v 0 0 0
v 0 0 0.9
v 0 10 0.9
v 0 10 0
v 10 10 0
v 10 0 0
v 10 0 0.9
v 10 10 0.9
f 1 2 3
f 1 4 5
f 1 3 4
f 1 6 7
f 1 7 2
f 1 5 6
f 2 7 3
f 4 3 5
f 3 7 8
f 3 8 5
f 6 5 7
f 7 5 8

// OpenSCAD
/* Warning, this is a very basic generator with a lot of approximation 
input data : [VQFN, 6EX, 10x10x0.9mm, 72, , D, C04-00243D]
generated by com.zoubworld.electronics.cad.model3d.Basic
Date : Sun Feb 15 10:50:48 CET 2026
*/

//body
color("black")
translate([0,0,0])
cube([10.0,10.0,0.9], center=false);
